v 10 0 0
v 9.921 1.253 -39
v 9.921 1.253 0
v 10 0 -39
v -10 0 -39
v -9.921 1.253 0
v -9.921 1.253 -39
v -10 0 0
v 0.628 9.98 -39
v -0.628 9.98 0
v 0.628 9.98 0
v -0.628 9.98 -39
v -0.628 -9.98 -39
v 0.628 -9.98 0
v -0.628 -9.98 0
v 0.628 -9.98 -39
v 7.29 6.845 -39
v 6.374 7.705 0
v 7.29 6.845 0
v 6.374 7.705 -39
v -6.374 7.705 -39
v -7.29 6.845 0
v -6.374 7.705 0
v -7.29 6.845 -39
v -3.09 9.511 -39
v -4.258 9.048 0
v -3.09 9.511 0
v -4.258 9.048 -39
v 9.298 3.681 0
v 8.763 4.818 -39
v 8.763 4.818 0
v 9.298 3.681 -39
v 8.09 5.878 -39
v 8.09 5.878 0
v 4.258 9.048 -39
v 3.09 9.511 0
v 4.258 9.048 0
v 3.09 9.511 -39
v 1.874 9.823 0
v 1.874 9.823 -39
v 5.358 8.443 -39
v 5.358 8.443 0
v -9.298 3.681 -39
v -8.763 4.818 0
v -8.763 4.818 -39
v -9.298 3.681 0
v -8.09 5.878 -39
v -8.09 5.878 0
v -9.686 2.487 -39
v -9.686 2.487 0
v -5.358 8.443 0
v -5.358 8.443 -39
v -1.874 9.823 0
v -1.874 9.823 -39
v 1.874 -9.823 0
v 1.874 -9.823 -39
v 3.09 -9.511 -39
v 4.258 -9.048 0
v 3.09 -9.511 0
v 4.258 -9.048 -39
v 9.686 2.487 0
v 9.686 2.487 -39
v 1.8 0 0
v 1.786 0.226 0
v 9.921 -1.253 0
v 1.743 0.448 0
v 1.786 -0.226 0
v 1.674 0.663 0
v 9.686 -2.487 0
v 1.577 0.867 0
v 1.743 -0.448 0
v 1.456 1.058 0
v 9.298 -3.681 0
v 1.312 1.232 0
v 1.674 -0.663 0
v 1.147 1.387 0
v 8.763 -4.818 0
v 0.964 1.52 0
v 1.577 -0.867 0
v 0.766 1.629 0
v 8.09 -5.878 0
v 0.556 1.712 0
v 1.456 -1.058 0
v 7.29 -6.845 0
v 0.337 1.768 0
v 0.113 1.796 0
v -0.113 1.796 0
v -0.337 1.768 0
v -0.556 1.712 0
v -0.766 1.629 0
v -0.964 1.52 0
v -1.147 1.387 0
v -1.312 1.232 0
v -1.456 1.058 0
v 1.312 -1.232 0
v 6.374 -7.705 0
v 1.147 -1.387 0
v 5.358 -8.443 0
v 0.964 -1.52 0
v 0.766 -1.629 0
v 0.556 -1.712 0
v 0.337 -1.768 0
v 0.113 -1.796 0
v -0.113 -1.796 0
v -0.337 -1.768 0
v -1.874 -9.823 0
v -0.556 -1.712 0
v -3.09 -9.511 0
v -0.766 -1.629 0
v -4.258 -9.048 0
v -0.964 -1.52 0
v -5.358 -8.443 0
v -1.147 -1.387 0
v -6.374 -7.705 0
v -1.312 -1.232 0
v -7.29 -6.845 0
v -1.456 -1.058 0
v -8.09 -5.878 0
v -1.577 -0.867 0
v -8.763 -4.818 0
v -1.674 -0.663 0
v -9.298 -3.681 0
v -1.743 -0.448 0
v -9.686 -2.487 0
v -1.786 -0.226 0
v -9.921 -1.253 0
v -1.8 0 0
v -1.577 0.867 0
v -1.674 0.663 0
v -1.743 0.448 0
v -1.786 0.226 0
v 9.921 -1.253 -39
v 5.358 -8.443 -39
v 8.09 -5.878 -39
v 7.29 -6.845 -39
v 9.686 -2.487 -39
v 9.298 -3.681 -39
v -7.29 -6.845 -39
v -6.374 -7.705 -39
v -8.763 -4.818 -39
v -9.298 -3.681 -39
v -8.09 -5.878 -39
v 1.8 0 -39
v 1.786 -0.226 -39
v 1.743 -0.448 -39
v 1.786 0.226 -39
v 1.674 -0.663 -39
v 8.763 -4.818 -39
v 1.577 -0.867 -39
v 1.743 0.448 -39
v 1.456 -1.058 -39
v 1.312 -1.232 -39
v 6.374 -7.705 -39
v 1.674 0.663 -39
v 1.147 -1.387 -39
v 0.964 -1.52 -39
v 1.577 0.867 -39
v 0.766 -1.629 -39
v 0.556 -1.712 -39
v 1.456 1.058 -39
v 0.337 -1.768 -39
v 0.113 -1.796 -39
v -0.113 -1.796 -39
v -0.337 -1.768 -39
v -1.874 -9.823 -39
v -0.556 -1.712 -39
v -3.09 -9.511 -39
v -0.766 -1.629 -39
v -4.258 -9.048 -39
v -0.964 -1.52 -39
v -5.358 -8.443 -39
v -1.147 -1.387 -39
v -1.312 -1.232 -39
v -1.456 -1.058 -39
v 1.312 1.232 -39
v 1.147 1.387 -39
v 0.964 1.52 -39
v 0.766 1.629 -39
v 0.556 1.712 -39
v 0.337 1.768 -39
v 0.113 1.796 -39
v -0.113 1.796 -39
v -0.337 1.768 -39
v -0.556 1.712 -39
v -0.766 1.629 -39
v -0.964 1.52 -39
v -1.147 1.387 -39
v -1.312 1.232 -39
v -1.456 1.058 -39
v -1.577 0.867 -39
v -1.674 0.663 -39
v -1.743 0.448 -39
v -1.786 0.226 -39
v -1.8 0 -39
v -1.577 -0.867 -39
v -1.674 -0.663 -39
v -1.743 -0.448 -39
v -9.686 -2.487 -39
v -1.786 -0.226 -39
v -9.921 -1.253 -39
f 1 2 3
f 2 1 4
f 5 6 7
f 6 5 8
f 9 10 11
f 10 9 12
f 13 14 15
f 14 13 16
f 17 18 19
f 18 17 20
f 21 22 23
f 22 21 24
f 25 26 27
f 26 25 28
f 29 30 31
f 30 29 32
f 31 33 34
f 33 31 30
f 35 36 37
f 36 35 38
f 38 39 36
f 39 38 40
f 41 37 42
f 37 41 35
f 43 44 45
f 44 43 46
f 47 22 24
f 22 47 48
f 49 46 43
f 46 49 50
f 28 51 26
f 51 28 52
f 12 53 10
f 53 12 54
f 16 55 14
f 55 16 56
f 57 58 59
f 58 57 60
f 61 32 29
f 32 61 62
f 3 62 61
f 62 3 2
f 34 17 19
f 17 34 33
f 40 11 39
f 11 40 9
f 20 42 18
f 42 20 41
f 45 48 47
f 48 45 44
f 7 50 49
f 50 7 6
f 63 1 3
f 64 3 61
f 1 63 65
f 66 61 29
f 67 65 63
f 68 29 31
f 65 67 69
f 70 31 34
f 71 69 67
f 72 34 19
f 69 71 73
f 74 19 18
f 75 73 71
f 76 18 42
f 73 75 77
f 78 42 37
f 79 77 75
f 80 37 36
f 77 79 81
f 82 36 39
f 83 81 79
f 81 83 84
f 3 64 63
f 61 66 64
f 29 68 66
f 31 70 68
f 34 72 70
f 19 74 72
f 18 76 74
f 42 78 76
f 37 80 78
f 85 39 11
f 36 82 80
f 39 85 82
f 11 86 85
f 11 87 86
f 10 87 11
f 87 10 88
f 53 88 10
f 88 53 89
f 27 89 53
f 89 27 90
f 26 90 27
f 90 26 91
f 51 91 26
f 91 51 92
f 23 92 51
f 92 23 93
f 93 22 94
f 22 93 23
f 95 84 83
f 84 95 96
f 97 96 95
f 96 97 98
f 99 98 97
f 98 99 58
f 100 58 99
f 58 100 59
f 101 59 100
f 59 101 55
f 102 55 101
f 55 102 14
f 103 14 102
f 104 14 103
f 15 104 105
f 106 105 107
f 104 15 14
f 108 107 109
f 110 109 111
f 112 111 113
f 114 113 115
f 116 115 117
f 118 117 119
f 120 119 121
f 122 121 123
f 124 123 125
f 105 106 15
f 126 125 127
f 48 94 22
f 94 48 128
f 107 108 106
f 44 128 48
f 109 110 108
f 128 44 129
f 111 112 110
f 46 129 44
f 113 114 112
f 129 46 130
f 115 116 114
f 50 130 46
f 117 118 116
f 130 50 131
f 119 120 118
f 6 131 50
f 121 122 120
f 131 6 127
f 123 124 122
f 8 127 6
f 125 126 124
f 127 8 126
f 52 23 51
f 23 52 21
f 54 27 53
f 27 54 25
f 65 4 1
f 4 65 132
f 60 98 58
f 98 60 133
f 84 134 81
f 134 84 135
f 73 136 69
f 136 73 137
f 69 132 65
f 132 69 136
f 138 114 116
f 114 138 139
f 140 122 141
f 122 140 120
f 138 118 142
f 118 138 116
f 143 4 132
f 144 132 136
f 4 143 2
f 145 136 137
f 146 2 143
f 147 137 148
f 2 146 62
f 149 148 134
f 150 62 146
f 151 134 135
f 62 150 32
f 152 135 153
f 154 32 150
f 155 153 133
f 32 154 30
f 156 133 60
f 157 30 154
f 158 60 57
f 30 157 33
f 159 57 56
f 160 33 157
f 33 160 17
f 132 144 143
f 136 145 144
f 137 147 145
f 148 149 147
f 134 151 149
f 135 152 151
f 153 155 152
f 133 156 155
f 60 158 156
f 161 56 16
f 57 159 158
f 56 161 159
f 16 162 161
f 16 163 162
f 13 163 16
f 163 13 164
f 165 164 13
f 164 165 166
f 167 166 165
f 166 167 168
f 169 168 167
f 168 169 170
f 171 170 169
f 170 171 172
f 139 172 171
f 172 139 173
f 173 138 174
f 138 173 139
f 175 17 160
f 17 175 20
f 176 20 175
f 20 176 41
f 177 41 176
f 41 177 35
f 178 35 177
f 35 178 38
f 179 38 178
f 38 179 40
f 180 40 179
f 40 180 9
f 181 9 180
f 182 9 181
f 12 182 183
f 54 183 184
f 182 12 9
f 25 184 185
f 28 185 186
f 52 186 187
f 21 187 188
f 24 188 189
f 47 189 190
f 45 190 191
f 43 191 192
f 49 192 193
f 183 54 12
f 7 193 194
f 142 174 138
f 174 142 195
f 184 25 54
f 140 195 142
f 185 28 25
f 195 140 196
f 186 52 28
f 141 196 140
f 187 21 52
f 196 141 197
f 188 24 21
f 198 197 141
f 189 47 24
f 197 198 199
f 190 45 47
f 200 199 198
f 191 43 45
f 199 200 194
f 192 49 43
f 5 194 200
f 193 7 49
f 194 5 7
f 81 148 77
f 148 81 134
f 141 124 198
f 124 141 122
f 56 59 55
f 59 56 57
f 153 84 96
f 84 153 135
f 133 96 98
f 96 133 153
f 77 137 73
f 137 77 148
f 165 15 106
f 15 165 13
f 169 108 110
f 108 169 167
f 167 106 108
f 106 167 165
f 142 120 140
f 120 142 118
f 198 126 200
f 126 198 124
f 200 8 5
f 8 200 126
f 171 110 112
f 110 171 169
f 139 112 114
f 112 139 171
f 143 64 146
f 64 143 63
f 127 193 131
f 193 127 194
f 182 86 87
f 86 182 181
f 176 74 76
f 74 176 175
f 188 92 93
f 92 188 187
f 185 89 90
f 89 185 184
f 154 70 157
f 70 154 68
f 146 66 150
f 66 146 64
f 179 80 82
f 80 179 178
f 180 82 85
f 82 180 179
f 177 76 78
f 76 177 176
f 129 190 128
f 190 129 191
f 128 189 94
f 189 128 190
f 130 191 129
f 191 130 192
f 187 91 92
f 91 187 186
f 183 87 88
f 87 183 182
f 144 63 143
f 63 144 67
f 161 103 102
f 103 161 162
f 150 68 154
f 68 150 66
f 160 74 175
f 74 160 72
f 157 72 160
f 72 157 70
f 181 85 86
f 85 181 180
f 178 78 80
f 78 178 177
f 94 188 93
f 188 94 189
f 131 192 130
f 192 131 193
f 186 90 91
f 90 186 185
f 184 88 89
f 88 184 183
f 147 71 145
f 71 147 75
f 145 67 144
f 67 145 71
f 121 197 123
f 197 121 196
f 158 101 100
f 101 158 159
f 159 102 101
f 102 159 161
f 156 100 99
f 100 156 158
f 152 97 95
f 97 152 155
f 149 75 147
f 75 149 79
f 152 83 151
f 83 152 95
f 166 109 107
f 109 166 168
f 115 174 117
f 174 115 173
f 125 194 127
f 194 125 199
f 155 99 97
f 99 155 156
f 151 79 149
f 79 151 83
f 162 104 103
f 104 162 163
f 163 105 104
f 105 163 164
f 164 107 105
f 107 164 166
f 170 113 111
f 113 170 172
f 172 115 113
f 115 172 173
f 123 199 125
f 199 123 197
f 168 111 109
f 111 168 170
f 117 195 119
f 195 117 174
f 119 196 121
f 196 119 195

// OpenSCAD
$fn = 50;


difference() {
	union() {
		translate(v = [0, 0, -39.0000000000]) {
			cylinder(h = 39, r = 10.0000000000);
		}
		cylinder(h = 0, r = 19.0000000000);
	}
	union() {
		#translate(v = [0, 0, -39]) {
			cylinder(h = 39, r = 1.8000000000);
		}
	}
}
